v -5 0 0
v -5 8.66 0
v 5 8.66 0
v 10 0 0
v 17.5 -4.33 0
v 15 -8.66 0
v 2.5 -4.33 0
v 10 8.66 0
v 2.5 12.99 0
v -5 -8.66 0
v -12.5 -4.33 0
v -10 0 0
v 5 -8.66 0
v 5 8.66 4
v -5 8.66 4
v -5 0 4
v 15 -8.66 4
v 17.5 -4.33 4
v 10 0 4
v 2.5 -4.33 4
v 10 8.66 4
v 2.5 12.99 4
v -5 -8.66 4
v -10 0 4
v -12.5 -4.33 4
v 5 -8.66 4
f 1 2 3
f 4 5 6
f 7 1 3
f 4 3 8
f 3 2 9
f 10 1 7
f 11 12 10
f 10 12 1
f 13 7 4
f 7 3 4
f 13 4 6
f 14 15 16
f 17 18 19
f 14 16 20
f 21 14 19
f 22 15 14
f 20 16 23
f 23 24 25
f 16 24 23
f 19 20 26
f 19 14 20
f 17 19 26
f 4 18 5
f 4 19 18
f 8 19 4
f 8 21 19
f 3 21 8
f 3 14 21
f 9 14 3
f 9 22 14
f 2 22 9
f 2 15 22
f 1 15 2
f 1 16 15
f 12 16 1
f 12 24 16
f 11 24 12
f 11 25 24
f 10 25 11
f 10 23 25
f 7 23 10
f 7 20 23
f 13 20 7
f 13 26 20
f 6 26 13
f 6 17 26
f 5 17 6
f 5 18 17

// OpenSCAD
r = [1,0];
u = [cos(60),sin(60)];
d = [cos(60),-sin(60)];

points = [
    [0,0],
    1/2 * r,
    u,
    2*u + 1/2*d,
    r + u,
    u + 3/2*r,
    2*r,
    3*r - 1/2*u,
    2*r + d,
    r + d,
    r + 1/2 * d,
    d,
    -1/2 * u
 ];
 
 module tile() {
     linear_extrude(4) {
         scale(10) translate(-r) polygon(points);
     }
 }
 
 tile();
